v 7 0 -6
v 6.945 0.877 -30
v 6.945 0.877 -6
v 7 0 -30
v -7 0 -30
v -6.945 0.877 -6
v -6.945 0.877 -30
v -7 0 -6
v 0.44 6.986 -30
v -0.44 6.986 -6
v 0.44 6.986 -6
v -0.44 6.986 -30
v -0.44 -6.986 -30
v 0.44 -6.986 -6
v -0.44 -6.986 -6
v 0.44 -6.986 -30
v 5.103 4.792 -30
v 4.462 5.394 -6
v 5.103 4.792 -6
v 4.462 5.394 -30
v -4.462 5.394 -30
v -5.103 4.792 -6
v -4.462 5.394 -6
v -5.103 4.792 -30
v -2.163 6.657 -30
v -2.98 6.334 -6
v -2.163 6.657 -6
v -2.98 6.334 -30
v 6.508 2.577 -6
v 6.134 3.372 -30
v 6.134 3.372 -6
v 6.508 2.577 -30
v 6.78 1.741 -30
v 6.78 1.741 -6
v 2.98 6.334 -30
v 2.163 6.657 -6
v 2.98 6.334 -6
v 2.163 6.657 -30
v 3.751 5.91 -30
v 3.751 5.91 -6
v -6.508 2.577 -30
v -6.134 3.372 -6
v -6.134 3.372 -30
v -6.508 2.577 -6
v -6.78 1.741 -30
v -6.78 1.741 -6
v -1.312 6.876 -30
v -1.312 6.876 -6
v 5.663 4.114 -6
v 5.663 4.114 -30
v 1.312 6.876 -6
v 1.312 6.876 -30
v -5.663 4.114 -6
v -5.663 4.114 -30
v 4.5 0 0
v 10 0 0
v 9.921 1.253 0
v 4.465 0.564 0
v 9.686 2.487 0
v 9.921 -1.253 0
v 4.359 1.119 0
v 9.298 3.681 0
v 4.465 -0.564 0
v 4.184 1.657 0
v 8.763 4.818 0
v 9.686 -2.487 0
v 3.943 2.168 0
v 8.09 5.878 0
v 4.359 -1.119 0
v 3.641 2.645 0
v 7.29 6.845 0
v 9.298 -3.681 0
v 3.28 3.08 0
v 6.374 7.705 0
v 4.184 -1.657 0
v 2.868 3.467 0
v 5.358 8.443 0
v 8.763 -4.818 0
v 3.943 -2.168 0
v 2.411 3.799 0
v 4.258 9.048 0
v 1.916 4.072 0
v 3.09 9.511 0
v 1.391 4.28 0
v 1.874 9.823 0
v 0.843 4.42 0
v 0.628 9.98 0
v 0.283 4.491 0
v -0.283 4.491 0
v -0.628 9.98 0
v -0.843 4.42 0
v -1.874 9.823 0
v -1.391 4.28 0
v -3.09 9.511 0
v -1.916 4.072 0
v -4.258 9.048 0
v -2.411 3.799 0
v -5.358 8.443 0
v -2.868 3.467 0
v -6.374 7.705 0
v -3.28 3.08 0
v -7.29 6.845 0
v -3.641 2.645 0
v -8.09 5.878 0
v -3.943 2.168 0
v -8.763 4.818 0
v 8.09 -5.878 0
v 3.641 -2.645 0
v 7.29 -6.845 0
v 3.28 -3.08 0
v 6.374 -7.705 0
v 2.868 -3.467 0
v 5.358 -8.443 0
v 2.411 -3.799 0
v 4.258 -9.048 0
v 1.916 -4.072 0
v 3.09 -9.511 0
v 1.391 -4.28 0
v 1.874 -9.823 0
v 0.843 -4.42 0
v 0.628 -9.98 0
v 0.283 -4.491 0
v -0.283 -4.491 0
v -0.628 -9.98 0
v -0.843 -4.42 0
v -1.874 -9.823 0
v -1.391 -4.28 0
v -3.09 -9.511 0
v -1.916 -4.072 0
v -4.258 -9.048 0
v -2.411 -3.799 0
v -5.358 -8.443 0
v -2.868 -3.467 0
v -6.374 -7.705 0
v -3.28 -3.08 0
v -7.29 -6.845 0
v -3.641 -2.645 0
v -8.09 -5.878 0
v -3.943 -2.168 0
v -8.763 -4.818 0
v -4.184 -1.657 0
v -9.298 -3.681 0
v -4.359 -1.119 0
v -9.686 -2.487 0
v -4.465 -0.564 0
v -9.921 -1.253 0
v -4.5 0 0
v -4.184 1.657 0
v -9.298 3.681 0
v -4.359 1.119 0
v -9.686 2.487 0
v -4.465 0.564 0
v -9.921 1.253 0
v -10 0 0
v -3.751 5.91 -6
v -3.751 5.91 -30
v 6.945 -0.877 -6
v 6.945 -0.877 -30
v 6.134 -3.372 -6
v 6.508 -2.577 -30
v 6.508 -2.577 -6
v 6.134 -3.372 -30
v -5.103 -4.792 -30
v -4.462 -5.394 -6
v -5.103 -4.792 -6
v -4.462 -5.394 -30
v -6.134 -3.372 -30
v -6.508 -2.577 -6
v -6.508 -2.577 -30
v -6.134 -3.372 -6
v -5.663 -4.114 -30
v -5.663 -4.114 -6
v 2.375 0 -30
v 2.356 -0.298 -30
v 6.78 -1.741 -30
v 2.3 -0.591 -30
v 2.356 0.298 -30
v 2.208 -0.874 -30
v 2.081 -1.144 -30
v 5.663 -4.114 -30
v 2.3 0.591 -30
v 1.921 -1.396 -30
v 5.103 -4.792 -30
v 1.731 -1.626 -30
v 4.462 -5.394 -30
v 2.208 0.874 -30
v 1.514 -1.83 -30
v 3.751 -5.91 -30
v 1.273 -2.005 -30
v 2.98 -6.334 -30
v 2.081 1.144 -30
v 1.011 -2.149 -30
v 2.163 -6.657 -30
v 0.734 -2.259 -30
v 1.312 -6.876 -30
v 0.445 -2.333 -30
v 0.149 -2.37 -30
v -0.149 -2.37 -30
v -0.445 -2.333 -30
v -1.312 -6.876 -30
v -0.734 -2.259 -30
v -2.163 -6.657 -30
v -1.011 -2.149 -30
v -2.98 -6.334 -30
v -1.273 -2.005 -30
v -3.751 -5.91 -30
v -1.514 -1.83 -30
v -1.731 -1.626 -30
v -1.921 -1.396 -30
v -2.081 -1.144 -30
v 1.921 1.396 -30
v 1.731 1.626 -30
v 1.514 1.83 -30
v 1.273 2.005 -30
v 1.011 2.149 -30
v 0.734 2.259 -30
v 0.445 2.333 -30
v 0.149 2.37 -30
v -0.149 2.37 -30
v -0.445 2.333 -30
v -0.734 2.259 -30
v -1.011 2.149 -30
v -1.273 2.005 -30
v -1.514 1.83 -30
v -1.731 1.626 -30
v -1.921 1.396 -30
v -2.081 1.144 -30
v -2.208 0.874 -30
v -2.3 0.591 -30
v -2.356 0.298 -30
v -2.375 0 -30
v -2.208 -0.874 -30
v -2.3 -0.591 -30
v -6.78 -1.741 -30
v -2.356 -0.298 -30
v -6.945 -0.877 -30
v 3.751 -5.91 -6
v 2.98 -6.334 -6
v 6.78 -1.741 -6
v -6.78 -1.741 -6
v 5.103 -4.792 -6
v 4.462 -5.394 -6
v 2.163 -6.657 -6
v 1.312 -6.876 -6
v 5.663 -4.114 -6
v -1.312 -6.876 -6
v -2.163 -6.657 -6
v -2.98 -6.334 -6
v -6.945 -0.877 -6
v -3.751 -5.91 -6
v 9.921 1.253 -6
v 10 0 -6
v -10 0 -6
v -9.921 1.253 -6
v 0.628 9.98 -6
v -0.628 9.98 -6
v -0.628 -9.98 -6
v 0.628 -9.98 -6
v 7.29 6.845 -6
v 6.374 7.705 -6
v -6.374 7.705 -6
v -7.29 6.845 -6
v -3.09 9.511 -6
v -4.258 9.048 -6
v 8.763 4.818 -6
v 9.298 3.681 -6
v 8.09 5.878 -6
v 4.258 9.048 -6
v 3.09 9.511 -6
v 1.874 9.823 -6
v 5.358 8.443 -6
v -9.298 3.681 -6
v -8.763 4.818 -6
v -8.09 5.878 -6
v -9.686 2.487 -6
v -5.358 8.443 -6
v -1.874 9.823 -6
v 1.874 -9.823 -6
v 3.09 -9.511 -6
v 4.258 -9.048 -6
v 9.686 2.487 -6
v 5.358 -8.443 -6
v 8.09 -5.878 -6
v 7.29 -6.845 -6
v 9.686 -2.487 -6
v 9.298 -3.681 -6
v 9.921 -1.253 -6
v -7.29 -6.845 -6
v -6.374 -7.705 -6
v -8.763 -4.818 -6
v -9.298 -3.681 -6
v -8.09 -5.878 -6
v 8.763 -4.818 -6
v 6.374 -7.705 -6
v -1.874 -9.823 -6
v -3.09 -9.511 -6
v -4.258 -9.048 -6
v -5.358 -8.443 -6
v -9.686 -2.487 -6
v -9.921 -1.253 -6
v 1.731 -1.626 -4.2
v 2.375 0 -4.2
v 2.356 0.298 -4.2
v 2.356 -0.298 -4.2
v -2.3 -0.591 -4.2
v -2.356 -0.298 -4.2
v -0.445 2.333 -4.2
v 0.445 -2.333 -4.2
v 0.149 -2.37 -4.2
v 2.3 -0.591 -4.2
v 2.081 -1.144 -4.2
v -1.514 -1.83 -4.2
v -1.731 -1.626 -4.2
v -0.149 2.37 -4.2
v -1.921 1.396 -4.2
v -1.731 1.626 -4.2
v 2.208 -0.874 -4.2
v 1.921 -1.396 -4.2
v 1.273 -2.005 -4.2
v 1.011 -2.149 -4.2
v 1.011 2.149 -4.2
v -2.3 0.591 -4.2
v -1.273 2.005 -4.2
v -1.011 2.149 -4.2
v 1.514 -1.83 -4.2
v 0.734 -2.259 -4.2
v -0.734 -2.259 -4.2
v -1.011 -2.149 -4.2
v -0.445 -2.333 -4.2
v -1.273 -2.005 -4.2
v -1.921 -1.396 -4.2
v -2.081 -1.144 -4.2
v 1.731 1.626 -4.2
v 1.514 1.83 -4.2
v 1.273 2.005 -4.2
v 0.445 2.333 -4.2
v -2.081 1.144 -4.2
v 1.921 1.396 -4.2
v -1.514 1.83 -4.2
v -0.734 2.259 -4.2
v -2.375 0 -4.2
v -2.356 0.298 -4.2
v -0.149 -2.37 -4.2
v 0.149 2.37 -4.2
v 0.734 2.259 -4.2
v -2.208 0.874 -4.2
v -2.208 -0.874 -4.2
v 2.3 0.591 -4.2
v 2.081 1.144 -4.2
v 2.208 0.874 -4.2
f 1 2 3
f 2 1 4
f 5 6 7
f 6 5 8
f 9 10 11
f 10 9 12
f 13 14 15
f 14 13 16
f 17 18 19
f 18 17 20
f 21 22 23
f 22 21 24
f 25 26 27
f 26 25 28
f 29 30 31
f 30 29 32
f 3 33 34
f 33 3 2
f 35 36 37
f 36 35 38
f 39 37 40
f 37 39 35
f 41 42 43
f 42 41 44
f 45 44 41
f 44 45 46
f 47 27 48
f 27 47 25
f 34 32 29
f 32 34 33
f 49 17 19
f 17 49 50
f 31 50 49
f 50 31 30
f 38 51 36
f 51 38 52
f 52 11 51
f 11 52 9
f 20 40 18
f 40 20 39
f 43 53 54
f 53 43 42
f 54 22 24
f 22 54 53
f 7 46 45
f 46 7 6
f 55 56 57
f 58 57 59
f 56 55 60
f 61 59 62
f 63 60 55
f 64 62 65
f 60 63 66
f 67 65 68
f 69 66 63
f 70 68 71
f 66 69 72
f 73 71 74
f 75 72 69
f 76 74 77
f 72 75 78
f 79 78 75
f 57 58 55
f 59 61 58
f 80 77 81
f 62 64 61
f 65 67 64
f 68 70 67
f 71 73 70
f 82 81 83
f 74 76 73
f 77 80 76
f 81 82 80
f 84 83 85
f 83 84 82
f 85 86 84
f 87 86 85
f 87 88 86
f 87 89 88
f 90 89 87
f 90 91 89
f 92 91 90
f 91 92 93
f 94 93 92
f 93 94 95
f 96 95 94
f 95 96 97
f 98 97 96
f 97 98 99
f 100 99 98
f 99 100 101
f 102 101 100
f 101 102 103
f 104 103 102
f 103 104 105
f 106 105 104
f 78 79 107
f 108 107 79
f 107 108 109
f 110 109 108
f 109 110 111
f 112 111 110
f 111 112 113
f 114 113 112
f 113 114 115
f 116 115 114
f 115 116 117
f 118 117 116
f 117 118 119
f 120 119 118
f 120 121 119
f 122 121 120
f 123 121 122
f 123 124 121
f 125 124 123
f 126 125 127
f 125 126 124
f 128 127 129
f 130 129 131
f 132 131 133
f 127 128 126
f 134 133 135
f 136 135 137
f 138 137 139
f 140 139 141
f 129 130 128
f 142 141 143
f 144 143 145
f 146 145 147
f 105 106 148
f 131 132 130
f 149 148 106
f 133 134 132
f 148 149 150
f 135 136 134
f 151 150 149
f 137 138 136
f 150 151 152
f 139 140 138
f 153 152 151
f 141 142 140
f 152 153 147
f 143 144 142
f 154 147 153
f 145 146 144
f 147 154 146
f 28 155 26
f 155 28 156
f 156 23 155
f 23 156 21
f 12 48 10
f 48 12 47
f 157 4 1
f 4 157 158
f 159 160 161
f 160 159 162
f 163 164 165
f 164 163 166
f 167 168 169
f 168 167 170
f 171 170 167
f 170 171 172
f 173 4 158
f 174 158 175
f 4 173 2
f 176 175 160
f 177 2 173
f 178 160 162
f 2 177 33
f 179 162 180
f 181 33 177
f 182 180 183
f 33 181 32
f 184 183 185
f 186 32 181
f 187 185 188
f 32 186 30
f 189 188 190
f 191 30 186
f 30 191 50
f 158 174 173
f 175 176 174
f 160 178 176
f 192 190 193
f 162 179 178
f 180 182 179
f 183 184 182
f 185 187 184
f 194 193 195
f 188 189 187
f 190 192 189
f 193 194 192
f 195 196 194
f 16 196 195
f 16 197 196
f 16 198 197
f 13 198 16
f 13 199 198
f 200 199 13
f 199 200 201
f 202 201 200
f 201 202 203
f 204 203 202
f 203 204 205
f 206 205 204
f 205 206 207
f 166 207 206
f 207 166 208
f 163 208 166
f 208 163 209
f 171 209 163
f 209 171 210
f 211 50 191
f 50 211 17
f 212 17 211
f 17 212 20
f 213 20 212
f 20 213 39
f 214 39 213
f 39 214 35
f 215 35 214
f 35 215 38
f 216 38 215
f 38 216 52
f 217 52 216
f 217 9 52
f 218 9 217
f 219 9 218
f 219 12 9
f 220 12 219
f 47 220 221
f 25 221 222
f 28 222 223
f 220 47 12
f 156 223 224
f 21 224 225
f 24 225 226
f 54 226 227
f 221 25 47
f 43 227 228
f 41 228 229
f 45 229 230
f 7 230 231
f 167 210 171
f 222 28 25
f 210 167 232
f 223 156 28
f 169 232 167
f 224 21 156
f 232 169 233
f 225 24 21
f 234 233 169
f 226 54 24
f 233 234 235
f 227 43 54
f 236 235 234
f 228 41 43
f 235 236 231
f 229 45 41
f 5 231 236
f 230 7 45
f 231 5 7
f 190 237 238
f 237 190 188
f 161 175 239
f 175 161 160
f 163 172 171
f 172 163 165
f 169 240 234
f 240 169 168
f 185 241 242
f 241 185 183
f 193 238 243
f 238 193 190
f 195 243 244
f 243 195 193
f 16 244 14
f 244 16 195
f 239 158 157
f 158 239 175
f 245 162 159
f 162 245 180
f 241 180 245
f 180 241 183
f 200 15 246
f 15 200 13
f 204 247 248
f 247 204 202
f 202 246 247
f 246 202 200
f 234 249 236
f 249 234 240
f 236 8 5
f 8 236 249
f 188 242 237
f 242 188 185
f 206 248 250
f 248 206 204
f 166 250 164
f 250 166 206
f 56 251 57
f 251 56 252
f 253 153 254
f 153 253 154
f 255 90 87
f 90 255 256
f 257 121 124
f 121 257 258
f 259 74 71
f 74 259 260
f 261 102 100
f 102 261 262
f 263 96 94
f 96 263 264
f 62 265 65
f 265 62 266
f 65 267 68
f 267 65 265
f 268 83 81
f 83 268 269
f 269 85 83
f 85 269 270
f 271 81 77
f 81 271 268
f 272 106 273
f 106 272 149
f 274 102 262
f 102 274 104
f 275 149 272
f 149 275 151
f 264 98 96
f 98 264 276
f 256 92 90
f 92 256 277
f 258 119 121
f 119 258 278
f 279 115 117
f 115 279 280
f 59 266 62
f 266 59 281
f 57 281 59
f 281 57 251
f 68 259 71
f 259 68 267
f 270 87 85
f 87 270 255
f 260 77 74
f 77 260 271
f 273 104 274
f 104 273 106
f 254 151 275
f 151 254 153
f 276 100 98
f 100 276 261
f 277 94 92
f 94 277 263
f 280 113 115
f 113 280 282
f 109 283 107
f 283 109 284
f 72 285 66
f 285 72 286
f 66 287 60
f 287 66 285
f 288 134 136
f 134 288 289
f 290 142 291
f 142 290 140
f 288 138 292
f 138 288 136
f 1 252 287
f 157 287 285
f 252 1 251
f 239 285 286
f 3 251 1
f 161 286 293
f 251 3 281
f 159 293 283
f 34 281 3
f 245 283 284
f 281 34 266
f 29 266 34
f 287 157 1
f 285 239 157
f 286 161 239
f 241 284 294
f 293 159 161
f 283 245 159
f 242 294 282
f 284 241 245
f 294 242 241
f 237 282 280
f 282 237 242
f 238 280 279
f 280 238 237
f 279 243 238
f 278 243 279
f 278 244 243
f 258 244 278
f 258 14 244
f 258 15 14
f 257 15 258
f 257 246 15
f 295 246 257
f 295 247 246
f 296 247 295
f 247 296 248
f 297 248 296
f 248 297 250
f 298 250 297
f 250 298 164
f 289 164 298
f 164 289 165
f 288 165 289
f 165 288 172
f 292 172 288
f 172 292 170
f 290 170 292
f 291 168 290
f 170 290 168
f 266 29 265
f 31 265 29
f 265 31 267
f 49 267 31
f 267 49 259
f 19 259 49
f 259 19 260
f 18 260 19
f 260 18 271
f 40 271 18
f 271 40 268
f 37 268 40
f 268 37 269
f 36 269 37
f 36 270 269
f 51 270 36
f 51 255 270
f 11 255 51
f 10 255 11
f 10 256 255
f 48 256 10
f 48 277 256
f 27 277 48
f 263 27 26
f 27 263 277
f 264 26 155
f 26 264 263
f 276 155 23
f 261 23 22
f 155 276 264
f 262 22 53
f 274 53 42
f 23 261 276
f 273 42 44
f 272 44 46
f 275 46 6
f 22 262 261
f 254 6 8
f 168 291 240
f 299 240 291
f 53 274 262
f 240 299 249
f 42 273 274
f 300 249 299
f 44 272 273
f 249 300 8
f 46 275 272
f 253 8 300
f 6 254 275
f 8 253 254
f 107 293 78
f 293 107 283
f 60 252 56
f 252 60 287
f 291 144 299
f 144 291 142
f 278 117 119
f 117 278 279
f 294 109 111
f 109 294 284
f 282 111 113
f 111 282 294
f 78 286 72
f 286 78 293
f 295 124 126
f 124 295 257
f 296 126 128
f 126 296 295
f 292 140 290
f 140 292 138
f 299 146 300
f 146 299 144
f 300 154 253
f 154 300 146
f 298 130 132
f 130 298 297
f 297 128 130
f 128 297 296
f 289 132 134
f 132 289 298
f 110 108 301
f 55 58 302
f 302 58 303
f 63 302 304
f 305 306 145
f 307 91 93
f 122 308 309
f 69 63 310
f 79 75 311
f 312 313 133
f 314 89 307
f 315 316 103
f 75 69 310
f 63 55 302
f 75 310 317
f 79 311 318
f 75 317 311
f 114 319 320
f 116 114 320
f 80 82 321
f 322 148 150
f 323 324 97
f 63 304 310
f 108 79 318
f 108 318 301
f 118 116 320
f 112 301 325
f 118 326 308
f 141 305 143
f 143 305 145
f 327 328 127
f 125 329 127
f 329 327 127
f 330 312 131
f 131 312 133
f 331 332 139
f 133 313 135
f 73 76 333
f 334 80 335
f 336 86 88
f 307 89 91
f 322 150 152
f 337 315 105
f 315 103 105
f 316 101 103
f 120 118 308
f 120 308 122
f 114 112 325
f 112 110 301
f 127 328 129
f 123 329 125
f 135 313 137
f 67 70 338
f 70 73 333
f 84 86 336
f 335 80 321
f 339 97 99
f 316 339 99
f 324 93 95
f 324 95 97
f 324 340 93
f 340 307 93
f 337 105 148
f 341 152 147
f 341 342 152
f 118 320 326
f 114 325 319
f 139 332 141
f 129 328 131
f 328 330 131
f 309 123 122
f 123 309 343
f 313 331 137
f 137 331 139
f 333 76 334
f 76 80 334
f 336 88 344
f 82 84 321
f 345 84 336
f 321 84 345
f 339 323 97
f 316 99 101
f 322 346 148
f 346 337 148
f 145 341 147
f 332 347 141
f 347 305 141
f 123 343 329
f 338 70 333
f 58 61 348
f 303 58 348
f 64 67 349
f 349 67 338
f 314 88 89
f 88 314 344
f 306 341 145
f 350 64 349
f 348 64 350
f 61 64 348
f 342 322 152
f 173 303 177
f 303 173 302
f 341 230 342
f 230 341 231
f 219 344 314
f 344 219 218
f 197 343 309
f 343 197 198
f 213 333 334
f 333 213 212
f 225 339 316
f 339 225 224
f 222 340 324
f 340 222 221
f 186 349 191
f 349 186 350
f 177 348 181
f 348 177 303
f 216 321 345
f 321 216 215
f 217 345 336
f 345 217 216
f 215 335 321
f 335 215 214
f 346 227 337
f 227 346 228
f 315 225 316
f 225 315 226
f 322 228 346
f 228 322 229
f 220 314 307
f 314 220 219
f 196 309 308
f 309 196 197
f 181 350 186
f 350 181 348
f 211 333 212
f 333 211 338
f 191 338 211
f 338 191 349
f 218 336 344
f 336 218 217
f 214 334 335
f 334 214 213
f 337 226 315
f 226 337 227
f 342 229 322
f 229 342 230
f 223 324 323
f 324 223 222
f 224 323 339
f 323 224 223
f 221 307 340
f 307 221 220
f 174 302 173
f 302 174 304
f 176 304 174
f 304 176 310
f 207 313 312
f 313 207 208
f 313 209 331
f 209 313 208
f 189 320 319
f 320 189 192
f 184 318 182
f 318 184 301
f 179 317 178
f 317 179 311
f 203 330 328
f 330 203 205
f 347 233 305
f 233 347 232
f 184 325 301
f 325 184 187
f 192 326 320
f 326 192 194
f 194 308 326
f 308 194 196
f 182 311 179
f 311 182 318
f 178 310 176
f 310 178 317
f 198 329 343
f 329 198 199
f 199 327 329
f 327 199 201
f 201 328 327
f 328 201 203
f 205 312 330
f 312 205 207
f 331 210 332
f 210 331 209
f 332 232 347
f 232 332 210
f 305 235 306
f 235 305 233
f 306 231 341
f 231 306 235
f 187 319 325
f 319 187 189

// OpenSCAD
$fn = 50;


difference() {
	union() {
		translate(v = [0, 0, -30.0000000000]) {
			cylinder(h = 30, r = 7.0000000000);
		}
		translate(v = [0, 0, -6.0000000000]) {
			cylinder(h = 6, r = 10.0000000000);
		}
	}
	union() {
		translate(v = [0, 0, 0]) {
			rotate(a = [0, 0, 0]) {
				difference() {
					union() {
						#translate(v = [0, 0, -30.0000000000]) {
							cylinder(h = 30, r = 2.2500000000);
						}
						#translate(v = [0, 0, -4.2000000000]) {
							cylinder(h = 4.2000000000, r1 = 2.3750000000, r2 = 4.5000000000);
						}
						#translate(v = [0, 0, -30.0000000000]) {
							cylinder(h = 30, r = 2.3750000000);
						}
						#translate(v = [0, 0, -30.0000000000]) {
							cylinder(h = 30, r = 2.2500000000);
						}
					}
					union();
				}
			}
		}
	}
}
